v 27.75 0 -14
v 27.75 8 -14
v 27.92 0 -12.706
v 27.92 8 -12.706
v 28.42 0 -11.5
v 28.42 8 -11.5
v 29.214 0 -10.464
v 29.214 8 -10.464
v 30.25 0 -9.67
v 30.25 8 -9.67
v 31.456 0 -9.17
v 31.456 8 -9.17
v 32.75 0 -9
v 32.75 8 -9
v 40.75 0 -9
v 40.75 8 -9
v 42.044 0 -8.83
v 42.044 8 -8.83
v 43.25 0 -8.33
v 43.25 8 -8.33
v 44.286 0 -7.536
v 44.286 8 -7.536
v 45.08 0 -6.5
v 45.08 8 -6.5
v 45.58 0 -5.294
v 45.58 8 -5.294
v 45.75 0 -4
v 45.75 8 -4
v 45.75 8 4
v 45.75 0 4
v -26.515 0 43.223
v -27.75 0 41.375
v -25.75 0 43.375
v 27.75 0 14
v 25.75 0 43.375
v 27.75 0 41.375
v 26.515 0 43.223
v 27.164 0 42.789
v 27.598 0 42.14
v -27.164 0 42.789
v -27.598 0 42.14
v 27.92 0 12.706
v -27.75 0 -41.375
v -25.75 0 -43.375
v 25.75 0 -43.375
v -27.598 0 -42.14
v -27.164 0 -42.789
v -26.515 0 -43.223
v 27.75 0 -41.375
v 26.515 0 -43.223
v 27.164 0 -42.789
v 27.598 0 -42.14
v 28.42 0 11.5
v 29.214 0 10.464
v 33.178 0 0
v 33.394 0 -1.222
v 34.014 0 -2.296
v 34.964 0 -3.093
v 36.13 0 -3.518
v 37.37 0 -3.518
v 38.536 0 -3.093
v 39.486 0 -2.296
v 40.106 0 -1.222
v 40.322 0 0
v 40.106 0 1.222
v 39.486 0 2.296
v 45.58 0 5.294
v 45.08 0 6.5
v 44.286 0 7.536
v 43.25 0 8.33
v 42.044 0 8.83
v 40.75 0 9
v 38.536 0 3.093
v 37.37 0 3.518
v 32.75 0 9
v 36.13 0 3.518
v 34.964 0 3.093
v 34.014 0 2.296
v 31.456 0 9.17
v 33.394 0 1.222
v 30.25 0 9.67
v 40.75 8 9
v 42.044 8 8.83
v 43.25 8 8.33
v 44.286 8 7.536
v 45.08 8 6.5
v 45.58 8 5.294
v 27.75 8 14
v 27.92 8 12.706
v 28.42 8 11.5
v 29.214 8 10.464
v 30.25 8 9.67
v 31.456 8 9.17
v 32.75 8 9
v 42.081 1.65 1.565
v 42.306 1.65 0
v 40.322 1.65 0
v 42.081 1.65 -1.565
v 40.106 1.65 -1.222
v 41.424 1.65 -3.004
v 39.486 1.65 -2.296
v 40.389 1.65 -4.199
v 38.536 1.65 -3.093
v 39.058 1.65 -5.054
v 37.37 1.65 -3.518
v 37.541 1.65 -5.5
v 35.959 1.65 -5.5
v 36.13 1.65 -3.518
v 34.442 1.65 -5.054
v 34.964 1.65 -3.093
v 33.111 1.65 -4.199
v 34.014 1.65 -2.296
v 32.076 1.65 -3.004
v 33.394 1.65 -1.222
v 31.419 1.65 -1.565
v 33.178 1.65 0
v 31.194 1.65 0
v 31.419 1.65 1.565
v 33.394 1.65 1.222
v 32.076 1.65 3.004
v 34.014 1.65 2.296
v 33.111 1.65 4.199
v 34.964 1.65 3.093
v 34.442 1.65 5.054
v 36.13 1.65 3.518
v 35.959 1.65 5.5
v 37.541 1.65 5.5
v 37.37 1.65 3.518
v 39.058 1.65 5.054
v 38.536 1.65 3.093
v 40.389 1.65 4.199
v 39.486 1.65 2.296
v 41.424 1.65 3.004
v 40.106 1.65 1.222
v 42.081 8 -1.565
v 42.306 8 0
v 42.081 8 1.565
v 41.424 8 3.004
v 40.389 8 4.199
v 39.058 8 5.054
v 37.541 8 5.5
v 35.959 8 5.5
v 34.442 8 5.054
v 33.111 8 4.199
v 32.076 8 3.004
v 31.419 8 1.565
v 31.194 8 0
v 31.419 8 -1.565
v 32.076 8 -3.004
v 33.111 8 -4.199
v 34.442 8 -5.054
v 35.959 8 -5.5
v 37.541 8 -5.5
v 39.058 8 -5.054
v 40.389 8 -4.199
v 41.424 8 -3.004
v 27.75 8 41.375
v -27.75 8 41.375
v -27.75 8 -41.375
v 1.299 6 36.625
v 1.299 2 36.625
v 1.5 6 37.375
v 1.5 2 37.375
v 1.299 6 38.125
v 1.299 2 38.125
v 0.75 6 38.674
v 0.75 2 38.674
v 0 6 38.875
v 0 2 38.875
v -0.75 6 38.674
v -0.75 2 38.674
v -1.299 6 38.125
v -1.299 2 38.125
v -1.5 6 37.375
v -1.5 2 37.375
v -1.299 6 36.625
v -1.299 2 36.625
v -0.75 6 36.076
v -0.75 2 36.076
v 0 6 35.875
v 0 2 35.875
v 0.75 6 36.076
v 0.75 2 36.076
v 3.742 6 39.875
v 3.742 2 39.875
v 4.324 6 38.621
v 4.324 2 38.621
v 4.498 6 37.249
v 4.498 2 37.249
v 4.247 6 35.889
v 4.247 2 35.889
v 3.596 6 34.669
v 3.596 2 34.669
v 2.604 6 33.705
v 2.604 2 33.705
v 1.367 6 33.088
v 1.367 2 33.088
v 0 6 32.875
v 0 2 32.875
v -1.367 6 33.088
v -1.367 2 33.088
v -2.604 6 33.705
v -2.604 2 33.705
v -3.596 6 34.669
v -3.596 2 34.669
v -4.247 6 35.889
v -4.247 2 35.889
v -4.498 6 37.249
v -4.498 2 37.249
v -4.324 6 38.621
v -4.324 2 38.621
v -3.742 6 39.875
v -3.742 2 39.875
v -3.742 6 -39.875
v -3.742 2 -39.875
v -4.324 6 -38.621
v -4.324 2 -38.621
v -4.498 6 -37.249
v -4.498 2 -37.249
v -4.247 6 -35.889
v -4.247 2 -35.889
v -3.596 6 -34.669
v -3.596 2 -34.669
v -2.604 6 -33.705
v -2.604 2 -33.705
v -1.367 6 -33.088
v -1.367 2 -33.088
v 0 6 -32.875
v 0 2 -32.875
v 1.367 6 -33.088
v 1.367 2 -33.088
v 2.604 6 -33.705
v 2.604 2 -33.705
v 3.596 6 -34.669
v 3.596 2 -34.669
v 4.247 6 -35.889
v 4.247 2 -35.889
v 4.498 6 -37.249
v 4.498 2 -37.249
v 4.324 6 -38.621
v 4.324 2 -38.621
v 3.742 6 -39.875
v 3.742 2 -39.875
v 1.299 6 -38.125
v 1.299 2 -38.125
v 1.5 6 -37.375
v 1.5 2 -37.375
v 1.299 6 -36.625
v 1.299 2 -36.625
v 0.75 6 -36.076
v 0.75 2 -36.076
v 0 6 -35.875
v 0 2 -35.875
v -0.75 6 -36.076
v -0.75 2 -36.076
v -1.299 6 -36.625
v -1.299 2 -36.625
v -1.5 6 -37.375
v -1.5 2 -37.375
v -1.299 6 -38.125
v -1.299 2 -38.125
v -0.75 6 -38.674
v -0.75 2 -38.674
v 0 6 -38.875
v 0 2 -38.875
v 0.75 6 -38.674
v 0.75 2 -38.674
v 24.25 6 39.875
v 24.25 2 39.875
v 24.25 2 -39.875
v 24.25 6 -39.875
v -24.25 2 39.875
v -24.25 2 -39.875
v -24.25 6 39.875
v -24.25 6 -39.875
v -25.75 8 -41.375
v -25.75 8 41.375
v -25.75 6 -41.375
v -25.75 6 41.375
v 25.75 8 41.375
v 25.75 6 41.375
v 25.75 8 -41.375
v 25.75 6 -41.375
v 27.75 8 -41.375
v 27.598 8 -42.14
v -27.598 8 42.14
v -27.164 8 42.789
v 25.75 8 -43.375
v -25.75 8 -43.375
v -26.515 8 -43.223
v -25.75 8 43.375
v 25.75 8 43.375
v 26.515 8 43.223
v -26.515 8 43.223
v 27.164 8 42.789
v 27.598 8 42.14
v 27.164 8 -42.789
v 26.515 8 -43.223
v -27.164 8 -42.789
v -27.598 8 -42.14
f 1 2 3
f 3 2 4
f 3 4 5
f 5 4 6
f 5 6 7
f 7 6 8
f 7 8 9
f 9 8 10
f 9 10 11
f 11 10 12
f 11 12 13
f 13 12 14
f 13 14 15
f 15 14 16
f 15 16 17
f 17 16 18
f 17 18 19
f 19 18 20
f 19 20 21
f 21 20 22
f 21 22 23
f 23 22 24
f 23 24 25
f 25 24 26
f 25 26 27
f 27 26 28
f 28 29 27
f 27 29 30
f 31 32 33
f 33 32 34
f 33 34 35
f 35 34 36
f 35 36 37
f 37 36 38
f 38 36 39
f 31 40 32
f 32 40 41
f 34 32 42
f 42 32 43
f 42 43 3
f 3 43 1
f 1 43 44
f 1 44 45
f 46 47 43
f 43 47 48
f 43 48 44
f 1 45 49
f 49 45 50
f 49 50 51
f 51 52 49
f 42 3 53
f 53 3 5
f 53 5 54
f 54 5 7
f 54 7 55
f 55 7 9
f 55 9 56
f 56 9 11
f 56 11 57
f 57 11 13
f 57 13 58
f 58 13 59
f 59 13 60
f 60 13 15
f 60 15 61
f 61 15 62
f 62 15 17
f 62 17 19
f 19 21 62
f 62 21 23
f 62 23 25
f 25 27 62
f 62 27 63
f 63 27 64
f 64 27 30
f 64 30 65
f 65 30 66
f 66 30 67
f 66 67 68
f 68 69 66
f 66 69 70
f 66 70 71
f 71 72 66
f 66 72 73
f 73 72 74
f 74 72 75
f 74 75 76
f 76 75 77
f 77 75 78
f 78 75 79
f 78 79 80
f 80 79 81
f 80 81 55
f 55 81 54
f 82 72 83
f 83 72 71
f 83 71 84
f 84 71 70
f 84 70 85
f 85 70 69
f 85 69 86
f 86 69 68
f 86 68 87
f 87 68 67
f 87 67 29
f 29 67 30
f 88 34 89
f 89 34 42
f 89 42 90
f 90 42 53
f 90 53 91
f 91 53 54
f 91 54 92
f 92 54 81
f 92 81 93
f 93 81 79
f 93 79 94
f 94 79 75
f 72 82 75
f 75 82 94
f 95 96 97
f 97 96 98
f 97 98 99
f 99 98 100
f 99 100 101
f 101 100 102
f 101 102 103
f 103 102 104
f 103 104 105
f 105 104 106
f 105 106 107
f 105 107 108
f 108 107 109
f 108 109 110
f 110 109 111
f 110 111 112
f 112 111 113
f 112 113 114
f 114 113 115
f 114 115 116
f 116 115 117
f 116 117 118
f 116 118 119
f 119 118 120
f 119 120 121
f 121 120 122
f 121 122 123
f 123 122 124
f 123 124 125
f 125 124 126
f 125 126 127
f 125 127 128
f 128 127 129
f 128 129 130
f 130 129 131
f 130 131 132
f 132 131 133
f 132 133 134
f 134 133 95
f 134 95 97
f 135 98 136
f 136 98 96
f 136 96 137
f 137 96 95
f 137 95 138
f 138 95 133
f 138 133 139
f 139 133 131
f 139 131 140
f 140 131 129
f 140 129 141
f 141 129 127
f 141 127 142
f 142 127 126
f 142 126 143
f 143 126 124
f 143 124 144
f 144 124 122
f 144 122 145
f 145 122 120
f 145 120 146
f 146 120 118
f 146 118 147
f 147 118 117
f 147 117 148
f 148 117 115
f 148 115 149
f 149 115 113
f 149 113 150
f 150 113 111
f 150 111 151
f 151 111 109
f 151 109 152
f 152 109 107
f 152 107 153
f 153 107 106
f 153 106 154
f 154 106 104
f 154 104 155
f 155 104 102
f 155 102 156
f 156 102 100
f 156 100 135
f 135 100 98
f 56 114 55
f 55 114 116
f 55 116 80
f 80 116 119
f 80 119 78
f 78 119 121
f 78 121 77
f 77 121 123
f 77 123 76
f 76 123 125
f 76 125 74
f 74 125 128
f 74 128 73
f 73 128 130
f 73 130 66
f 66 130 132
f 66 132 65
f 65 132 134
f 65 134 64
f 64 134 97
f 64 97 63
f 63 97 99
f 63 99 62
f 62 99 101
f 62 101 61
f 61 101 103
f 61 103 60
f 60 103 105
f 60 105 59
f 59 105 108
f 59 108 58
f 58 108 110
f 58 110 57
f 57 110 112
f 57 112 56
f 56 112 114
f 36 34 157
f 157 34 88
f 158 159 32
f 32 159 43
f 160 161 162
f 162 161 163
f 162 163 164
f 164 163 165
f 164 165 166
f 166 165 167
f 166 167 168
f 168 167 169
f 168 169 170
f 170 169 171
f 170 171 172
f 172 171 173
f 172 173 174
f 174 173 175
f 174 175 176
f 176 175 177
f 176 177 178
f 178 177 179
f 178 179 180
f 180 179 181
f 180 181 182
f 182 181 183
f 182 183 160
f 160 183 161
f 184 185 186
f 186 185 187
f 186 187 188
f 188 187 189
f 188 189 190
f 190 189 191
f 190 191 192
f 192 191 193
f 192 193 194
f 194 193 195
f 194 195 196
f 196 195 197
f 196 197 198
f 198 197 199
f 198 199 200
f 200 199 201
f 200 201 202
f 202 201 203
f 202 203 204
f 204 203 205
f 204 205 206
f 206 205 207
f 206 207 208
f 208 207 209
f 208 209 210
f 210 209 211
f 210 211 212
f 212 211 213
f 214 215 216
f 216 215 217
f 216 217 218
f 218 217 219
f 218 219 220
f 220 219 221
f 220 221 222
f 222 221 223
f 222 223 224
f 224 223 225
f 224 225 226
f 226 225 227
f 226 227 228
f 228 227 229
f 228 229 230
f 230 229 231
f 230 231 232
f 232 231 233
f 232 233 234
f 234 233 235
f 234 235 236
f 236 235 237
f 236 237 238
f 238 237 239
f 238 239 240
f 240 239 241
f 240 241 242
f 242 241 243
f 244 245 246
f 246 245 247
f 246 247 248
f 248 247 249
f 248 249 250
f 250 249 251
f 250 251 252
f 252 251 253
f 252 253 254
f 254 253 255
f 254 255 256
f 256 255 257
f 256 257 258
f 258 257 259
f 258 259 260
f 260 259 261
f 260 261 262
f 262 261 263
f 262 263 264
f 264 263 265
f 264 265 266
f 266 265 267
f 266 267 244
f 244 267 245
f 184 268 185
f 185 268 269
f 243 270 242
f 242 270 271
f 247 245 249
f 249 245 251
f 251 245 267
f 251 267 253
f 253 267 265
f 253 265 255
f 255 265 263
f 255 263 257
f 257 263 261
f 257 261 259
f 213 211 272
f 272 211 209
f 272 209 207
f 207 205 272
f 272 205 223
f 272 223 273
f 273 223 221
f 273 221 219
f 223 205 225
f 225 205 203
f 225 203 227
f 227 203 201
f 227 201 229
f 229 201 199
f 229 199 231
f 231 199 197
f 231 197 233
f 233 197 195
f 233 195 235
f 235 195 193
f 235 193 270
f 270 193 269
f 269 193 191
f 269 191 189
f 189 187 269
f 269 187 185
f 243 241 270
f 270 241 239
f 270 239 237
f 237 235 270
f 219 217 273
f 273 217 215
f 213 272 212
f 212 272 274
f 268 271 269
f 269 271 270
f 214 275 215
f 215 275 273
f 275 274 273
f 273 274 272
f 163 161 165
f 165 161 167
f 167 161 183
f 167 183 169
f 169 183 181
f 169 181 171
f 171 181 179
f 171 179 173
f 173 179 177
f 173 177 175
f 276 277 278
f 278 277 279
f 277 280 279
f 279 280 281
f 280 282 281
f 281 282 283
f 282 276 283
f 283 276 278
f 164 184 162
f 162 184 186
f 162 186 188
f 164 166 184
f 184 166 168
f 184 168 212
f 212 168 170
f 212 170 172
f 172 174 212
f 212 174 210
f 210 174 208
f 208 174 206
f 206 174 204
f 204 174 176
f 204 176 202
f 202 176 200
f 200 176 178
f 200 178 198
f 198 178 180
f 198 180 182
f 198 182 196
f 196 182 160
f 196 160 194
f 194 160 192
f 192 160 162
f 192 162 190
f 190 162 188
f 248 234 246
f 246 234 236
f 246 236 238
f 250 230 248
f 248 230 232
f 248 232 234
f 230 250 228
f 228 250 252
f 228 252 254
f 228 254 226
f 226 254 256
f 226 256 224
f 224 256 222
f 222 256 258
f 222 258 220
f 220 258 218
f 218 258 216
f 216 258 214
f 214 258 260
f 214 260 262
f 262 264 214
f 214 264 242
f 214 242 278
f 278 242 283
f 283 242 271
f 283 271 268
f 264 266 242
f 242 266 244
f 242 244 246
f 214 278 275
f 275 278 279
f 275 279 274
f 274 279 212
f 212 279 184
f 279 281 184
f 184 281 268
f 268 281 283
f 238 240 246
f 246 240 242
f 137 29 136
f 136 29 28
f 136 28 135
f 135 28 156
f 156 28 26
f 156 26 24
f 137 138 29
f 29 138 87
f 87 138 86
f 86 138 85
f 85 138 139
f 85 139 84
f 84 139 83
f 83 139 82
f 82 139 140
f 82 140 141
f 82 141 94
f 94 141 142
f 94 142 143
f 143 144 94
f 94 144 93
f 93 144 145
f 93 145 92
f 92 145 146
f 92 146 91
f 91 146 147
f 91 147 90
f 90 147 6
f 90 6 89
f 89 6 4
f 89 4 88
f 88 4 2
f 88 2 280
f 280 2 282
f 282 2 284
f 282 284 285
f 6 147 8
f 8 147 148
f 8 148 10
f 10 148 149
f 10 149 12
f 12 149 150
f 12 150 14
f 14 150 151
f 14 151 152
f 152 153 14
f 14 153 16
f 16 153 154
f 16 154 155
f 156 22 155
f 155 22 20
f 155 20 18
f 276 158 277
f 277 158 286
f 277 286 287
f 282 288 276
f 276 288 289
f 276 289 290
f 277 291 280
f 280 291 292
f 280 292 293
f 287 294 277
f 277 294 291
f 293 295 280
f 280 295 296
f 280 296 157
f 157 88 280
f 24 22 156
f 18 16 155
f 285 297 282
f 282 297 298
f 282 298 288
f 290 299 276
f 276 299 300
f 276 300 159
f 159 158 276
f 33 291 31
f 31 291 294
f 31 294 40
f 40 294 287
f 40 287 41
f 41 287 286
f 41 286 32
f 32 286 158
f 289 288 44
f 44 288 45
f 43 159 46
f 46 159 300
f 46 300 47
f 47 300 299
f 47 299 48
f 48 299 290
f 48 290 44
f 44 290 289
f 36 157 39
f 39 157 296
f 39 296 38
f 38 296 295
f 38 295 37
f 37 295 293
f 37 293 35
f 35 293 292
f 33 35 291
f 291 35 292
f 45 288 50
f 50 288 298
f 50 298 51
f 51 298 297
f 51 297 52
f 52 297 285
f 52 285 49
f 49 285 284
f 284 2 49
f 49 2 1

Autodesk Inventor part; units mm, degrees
ref_plane "YZ Plane" through (0, 0, 0) normal (1, 0, 0) x (0, 1, 0)
ref_plane "XZ Plane" through (0, 0, 0) normal (0, 1, 0) x (-1, 0, 0)
ref_plane "XY Plane" through (0, 0, 0) normal (0, 0, 1) x (1, 0, 0)
sketch "Sketch1" plane through (0, 0, 0) normal (0, 1, 0) x (-1, 0, 0)
  line L0 (-27.75, 43.375) -> (27.75, 43.375)
  line L1 (27.75, 43.375) -> (27.75, -43.375)
  line L2 (27.75, -43.375) -> (-27.75, -43.375)
  line L3 (-27.75, -43.375) -> (-27.75, 43.375)
  line L4 (-27.75, 43.375) -> (27.75, -43.375) construction
  line L5 (27.75, 43.375) -> (-27.75, -43.375) construction
  point P0 (0, 0)
  dimension "d0" = 86.75
  dimension "d1" = 55.5
extrude "Extrusion1" add sketch "Sketch1" along normal blind 8
sketch "Sketch2" plane through (0, 8, 0) normal (0, 1, 0) x (1, 0, 0)
  line L0 (25.75, -41.375) -> (-25.75, -41.375)
  line L1 (-25.75, -41.375) -> (-25.75, 41.375)
  line L2 (-25.75, 41.375) -> (25.75, 41.375)
  line L3 (25.75, 41.375) -> (25.75, -41.375)
  line L4 (25.75, -41.375) -> (-25.75, 41.375) construction
  line L5 (-25.75, -41.375) -> (25.75, 41.375) construction
  point P0 (0, 0)
  dimension "d4" = 51.5
  dimension "d5" = 82.75
extrude "Extrusion2" cut sketch "Sketch2" against normal blind 2
sketch "Sketch3" plane through (0, 6, 0) normal (0, 1, 0) x (1, 0, 0)
  line L0 (24.25, 39.875) -> (-24.25, 39.875)
  line L1 (-24.25, 39.875) -> (-24.25, -39.875)
  line L2 (-24.25, -39.875) -> (24.25, -39.875)
  line L3 (24.25, -39.875) -> (24.25, 39.875)
  line L4 (24.25, 39.875) -> (-24.25, -39.875) construction
  line L5 (-24.25, 39.875) -> (24.25, -39.875) construction
  point P0 (0, 0)
  dimension "d8" = 79.75
  dimension "d9" = 48.5
extrude "Extrusion3" cut sketch "Sketch3" against normal blind 4
sketch "Sketch4" plane through (0, 2, 0) normal (0, 1, 0) x (1, 0, 0)
  circle A0 centre (0, -37.375) radius 4.5
  circle A1 centre (0, 37.375) radius 4.5
  line L0 (24.25, -39.875) -> (-24.25, -39.875) projected
  line L1 (25.75, -41.375) -> (-25.75, -41.375) projected
  circle A2 centre (0, -37.375) radius 1.5
  circle A3 centre (0, 37.375) radius 1.5
  point P0 (0, 0)
  point P1 (-3.7417, -39.875)
  point P2 (3.7417, -39.875)
  dimension "d12" = 9
  dimension "d13" = 9
  dimension "d14" = 74.75
  dimension "d16" = 4
  dimension "d17" = 3
  dimension "d18" = 3
extrude "Extrusion4" add sketch "Sketch4" along normal blind 4 contours A0 L0 | A1
sketch "Sketch5" plane through (27.75, 0, 43.375) normal (1, 0, 0) x (0, 0, -1)
  line L0 (84.75, 8) -> (2, 8) projected
  line L1 (0, 0) -> (86.75, 0) projected
  line L2 (34.375, 8) -> (52.375, 8)
  line L3 (52.375, 8) -> (52.375, 0)
  line L4 (52.375, 0) -> (34.375, 0)
  line L5 (34.375, 0) -> (34.375, 8)
  point P0 (43.375, 0)
  point P1 (34.375, 4)
  point P2 (43.375, 0)
  point P3 (34.375, 0)
  point P4 (52.375, 8)
  dimension "d21" = 18
  dimension "d22" = 9
extrude "Extrusion5" add sketch "Sketch5" along normal blind 18
sketch "Sketch6" plane through (0, 8, 0) normal (0, 1, 0) x (1, 0, 0)
  line L0 (27.75, -43.375) -> (27.75, -9) projected
  line L1 (27.75, -9) -> (45.75, -9) projected
  point P0 (0, 0)
  point P1 (36.75, 0)
  dimension "d32" = 9
  dimension "d33" = 9
hole "Hole1" at (36.75, 8, 0) direction (0, -1, 0) diameter 7.1437 end through all counterbore diameter 11.1125 counterbore depth 6.35
fillet "Fillet2" radius 5 4 edges at (27.75, 4, 9) (45.75, 4, 9) (45.75, 4, -9) (27.75, 4, -9)
fillet "Fillet3" radius 2 4 edges at (27.75, 4, 43.375) (27.75, 4, -43.375) (-27.75, 4, -43.375) (-27.75, 4, 43.375)
equation "\"d22\" = 0.5 * d21"
properties part number "PermaProtoBase_HalfSizeScrewMount"
